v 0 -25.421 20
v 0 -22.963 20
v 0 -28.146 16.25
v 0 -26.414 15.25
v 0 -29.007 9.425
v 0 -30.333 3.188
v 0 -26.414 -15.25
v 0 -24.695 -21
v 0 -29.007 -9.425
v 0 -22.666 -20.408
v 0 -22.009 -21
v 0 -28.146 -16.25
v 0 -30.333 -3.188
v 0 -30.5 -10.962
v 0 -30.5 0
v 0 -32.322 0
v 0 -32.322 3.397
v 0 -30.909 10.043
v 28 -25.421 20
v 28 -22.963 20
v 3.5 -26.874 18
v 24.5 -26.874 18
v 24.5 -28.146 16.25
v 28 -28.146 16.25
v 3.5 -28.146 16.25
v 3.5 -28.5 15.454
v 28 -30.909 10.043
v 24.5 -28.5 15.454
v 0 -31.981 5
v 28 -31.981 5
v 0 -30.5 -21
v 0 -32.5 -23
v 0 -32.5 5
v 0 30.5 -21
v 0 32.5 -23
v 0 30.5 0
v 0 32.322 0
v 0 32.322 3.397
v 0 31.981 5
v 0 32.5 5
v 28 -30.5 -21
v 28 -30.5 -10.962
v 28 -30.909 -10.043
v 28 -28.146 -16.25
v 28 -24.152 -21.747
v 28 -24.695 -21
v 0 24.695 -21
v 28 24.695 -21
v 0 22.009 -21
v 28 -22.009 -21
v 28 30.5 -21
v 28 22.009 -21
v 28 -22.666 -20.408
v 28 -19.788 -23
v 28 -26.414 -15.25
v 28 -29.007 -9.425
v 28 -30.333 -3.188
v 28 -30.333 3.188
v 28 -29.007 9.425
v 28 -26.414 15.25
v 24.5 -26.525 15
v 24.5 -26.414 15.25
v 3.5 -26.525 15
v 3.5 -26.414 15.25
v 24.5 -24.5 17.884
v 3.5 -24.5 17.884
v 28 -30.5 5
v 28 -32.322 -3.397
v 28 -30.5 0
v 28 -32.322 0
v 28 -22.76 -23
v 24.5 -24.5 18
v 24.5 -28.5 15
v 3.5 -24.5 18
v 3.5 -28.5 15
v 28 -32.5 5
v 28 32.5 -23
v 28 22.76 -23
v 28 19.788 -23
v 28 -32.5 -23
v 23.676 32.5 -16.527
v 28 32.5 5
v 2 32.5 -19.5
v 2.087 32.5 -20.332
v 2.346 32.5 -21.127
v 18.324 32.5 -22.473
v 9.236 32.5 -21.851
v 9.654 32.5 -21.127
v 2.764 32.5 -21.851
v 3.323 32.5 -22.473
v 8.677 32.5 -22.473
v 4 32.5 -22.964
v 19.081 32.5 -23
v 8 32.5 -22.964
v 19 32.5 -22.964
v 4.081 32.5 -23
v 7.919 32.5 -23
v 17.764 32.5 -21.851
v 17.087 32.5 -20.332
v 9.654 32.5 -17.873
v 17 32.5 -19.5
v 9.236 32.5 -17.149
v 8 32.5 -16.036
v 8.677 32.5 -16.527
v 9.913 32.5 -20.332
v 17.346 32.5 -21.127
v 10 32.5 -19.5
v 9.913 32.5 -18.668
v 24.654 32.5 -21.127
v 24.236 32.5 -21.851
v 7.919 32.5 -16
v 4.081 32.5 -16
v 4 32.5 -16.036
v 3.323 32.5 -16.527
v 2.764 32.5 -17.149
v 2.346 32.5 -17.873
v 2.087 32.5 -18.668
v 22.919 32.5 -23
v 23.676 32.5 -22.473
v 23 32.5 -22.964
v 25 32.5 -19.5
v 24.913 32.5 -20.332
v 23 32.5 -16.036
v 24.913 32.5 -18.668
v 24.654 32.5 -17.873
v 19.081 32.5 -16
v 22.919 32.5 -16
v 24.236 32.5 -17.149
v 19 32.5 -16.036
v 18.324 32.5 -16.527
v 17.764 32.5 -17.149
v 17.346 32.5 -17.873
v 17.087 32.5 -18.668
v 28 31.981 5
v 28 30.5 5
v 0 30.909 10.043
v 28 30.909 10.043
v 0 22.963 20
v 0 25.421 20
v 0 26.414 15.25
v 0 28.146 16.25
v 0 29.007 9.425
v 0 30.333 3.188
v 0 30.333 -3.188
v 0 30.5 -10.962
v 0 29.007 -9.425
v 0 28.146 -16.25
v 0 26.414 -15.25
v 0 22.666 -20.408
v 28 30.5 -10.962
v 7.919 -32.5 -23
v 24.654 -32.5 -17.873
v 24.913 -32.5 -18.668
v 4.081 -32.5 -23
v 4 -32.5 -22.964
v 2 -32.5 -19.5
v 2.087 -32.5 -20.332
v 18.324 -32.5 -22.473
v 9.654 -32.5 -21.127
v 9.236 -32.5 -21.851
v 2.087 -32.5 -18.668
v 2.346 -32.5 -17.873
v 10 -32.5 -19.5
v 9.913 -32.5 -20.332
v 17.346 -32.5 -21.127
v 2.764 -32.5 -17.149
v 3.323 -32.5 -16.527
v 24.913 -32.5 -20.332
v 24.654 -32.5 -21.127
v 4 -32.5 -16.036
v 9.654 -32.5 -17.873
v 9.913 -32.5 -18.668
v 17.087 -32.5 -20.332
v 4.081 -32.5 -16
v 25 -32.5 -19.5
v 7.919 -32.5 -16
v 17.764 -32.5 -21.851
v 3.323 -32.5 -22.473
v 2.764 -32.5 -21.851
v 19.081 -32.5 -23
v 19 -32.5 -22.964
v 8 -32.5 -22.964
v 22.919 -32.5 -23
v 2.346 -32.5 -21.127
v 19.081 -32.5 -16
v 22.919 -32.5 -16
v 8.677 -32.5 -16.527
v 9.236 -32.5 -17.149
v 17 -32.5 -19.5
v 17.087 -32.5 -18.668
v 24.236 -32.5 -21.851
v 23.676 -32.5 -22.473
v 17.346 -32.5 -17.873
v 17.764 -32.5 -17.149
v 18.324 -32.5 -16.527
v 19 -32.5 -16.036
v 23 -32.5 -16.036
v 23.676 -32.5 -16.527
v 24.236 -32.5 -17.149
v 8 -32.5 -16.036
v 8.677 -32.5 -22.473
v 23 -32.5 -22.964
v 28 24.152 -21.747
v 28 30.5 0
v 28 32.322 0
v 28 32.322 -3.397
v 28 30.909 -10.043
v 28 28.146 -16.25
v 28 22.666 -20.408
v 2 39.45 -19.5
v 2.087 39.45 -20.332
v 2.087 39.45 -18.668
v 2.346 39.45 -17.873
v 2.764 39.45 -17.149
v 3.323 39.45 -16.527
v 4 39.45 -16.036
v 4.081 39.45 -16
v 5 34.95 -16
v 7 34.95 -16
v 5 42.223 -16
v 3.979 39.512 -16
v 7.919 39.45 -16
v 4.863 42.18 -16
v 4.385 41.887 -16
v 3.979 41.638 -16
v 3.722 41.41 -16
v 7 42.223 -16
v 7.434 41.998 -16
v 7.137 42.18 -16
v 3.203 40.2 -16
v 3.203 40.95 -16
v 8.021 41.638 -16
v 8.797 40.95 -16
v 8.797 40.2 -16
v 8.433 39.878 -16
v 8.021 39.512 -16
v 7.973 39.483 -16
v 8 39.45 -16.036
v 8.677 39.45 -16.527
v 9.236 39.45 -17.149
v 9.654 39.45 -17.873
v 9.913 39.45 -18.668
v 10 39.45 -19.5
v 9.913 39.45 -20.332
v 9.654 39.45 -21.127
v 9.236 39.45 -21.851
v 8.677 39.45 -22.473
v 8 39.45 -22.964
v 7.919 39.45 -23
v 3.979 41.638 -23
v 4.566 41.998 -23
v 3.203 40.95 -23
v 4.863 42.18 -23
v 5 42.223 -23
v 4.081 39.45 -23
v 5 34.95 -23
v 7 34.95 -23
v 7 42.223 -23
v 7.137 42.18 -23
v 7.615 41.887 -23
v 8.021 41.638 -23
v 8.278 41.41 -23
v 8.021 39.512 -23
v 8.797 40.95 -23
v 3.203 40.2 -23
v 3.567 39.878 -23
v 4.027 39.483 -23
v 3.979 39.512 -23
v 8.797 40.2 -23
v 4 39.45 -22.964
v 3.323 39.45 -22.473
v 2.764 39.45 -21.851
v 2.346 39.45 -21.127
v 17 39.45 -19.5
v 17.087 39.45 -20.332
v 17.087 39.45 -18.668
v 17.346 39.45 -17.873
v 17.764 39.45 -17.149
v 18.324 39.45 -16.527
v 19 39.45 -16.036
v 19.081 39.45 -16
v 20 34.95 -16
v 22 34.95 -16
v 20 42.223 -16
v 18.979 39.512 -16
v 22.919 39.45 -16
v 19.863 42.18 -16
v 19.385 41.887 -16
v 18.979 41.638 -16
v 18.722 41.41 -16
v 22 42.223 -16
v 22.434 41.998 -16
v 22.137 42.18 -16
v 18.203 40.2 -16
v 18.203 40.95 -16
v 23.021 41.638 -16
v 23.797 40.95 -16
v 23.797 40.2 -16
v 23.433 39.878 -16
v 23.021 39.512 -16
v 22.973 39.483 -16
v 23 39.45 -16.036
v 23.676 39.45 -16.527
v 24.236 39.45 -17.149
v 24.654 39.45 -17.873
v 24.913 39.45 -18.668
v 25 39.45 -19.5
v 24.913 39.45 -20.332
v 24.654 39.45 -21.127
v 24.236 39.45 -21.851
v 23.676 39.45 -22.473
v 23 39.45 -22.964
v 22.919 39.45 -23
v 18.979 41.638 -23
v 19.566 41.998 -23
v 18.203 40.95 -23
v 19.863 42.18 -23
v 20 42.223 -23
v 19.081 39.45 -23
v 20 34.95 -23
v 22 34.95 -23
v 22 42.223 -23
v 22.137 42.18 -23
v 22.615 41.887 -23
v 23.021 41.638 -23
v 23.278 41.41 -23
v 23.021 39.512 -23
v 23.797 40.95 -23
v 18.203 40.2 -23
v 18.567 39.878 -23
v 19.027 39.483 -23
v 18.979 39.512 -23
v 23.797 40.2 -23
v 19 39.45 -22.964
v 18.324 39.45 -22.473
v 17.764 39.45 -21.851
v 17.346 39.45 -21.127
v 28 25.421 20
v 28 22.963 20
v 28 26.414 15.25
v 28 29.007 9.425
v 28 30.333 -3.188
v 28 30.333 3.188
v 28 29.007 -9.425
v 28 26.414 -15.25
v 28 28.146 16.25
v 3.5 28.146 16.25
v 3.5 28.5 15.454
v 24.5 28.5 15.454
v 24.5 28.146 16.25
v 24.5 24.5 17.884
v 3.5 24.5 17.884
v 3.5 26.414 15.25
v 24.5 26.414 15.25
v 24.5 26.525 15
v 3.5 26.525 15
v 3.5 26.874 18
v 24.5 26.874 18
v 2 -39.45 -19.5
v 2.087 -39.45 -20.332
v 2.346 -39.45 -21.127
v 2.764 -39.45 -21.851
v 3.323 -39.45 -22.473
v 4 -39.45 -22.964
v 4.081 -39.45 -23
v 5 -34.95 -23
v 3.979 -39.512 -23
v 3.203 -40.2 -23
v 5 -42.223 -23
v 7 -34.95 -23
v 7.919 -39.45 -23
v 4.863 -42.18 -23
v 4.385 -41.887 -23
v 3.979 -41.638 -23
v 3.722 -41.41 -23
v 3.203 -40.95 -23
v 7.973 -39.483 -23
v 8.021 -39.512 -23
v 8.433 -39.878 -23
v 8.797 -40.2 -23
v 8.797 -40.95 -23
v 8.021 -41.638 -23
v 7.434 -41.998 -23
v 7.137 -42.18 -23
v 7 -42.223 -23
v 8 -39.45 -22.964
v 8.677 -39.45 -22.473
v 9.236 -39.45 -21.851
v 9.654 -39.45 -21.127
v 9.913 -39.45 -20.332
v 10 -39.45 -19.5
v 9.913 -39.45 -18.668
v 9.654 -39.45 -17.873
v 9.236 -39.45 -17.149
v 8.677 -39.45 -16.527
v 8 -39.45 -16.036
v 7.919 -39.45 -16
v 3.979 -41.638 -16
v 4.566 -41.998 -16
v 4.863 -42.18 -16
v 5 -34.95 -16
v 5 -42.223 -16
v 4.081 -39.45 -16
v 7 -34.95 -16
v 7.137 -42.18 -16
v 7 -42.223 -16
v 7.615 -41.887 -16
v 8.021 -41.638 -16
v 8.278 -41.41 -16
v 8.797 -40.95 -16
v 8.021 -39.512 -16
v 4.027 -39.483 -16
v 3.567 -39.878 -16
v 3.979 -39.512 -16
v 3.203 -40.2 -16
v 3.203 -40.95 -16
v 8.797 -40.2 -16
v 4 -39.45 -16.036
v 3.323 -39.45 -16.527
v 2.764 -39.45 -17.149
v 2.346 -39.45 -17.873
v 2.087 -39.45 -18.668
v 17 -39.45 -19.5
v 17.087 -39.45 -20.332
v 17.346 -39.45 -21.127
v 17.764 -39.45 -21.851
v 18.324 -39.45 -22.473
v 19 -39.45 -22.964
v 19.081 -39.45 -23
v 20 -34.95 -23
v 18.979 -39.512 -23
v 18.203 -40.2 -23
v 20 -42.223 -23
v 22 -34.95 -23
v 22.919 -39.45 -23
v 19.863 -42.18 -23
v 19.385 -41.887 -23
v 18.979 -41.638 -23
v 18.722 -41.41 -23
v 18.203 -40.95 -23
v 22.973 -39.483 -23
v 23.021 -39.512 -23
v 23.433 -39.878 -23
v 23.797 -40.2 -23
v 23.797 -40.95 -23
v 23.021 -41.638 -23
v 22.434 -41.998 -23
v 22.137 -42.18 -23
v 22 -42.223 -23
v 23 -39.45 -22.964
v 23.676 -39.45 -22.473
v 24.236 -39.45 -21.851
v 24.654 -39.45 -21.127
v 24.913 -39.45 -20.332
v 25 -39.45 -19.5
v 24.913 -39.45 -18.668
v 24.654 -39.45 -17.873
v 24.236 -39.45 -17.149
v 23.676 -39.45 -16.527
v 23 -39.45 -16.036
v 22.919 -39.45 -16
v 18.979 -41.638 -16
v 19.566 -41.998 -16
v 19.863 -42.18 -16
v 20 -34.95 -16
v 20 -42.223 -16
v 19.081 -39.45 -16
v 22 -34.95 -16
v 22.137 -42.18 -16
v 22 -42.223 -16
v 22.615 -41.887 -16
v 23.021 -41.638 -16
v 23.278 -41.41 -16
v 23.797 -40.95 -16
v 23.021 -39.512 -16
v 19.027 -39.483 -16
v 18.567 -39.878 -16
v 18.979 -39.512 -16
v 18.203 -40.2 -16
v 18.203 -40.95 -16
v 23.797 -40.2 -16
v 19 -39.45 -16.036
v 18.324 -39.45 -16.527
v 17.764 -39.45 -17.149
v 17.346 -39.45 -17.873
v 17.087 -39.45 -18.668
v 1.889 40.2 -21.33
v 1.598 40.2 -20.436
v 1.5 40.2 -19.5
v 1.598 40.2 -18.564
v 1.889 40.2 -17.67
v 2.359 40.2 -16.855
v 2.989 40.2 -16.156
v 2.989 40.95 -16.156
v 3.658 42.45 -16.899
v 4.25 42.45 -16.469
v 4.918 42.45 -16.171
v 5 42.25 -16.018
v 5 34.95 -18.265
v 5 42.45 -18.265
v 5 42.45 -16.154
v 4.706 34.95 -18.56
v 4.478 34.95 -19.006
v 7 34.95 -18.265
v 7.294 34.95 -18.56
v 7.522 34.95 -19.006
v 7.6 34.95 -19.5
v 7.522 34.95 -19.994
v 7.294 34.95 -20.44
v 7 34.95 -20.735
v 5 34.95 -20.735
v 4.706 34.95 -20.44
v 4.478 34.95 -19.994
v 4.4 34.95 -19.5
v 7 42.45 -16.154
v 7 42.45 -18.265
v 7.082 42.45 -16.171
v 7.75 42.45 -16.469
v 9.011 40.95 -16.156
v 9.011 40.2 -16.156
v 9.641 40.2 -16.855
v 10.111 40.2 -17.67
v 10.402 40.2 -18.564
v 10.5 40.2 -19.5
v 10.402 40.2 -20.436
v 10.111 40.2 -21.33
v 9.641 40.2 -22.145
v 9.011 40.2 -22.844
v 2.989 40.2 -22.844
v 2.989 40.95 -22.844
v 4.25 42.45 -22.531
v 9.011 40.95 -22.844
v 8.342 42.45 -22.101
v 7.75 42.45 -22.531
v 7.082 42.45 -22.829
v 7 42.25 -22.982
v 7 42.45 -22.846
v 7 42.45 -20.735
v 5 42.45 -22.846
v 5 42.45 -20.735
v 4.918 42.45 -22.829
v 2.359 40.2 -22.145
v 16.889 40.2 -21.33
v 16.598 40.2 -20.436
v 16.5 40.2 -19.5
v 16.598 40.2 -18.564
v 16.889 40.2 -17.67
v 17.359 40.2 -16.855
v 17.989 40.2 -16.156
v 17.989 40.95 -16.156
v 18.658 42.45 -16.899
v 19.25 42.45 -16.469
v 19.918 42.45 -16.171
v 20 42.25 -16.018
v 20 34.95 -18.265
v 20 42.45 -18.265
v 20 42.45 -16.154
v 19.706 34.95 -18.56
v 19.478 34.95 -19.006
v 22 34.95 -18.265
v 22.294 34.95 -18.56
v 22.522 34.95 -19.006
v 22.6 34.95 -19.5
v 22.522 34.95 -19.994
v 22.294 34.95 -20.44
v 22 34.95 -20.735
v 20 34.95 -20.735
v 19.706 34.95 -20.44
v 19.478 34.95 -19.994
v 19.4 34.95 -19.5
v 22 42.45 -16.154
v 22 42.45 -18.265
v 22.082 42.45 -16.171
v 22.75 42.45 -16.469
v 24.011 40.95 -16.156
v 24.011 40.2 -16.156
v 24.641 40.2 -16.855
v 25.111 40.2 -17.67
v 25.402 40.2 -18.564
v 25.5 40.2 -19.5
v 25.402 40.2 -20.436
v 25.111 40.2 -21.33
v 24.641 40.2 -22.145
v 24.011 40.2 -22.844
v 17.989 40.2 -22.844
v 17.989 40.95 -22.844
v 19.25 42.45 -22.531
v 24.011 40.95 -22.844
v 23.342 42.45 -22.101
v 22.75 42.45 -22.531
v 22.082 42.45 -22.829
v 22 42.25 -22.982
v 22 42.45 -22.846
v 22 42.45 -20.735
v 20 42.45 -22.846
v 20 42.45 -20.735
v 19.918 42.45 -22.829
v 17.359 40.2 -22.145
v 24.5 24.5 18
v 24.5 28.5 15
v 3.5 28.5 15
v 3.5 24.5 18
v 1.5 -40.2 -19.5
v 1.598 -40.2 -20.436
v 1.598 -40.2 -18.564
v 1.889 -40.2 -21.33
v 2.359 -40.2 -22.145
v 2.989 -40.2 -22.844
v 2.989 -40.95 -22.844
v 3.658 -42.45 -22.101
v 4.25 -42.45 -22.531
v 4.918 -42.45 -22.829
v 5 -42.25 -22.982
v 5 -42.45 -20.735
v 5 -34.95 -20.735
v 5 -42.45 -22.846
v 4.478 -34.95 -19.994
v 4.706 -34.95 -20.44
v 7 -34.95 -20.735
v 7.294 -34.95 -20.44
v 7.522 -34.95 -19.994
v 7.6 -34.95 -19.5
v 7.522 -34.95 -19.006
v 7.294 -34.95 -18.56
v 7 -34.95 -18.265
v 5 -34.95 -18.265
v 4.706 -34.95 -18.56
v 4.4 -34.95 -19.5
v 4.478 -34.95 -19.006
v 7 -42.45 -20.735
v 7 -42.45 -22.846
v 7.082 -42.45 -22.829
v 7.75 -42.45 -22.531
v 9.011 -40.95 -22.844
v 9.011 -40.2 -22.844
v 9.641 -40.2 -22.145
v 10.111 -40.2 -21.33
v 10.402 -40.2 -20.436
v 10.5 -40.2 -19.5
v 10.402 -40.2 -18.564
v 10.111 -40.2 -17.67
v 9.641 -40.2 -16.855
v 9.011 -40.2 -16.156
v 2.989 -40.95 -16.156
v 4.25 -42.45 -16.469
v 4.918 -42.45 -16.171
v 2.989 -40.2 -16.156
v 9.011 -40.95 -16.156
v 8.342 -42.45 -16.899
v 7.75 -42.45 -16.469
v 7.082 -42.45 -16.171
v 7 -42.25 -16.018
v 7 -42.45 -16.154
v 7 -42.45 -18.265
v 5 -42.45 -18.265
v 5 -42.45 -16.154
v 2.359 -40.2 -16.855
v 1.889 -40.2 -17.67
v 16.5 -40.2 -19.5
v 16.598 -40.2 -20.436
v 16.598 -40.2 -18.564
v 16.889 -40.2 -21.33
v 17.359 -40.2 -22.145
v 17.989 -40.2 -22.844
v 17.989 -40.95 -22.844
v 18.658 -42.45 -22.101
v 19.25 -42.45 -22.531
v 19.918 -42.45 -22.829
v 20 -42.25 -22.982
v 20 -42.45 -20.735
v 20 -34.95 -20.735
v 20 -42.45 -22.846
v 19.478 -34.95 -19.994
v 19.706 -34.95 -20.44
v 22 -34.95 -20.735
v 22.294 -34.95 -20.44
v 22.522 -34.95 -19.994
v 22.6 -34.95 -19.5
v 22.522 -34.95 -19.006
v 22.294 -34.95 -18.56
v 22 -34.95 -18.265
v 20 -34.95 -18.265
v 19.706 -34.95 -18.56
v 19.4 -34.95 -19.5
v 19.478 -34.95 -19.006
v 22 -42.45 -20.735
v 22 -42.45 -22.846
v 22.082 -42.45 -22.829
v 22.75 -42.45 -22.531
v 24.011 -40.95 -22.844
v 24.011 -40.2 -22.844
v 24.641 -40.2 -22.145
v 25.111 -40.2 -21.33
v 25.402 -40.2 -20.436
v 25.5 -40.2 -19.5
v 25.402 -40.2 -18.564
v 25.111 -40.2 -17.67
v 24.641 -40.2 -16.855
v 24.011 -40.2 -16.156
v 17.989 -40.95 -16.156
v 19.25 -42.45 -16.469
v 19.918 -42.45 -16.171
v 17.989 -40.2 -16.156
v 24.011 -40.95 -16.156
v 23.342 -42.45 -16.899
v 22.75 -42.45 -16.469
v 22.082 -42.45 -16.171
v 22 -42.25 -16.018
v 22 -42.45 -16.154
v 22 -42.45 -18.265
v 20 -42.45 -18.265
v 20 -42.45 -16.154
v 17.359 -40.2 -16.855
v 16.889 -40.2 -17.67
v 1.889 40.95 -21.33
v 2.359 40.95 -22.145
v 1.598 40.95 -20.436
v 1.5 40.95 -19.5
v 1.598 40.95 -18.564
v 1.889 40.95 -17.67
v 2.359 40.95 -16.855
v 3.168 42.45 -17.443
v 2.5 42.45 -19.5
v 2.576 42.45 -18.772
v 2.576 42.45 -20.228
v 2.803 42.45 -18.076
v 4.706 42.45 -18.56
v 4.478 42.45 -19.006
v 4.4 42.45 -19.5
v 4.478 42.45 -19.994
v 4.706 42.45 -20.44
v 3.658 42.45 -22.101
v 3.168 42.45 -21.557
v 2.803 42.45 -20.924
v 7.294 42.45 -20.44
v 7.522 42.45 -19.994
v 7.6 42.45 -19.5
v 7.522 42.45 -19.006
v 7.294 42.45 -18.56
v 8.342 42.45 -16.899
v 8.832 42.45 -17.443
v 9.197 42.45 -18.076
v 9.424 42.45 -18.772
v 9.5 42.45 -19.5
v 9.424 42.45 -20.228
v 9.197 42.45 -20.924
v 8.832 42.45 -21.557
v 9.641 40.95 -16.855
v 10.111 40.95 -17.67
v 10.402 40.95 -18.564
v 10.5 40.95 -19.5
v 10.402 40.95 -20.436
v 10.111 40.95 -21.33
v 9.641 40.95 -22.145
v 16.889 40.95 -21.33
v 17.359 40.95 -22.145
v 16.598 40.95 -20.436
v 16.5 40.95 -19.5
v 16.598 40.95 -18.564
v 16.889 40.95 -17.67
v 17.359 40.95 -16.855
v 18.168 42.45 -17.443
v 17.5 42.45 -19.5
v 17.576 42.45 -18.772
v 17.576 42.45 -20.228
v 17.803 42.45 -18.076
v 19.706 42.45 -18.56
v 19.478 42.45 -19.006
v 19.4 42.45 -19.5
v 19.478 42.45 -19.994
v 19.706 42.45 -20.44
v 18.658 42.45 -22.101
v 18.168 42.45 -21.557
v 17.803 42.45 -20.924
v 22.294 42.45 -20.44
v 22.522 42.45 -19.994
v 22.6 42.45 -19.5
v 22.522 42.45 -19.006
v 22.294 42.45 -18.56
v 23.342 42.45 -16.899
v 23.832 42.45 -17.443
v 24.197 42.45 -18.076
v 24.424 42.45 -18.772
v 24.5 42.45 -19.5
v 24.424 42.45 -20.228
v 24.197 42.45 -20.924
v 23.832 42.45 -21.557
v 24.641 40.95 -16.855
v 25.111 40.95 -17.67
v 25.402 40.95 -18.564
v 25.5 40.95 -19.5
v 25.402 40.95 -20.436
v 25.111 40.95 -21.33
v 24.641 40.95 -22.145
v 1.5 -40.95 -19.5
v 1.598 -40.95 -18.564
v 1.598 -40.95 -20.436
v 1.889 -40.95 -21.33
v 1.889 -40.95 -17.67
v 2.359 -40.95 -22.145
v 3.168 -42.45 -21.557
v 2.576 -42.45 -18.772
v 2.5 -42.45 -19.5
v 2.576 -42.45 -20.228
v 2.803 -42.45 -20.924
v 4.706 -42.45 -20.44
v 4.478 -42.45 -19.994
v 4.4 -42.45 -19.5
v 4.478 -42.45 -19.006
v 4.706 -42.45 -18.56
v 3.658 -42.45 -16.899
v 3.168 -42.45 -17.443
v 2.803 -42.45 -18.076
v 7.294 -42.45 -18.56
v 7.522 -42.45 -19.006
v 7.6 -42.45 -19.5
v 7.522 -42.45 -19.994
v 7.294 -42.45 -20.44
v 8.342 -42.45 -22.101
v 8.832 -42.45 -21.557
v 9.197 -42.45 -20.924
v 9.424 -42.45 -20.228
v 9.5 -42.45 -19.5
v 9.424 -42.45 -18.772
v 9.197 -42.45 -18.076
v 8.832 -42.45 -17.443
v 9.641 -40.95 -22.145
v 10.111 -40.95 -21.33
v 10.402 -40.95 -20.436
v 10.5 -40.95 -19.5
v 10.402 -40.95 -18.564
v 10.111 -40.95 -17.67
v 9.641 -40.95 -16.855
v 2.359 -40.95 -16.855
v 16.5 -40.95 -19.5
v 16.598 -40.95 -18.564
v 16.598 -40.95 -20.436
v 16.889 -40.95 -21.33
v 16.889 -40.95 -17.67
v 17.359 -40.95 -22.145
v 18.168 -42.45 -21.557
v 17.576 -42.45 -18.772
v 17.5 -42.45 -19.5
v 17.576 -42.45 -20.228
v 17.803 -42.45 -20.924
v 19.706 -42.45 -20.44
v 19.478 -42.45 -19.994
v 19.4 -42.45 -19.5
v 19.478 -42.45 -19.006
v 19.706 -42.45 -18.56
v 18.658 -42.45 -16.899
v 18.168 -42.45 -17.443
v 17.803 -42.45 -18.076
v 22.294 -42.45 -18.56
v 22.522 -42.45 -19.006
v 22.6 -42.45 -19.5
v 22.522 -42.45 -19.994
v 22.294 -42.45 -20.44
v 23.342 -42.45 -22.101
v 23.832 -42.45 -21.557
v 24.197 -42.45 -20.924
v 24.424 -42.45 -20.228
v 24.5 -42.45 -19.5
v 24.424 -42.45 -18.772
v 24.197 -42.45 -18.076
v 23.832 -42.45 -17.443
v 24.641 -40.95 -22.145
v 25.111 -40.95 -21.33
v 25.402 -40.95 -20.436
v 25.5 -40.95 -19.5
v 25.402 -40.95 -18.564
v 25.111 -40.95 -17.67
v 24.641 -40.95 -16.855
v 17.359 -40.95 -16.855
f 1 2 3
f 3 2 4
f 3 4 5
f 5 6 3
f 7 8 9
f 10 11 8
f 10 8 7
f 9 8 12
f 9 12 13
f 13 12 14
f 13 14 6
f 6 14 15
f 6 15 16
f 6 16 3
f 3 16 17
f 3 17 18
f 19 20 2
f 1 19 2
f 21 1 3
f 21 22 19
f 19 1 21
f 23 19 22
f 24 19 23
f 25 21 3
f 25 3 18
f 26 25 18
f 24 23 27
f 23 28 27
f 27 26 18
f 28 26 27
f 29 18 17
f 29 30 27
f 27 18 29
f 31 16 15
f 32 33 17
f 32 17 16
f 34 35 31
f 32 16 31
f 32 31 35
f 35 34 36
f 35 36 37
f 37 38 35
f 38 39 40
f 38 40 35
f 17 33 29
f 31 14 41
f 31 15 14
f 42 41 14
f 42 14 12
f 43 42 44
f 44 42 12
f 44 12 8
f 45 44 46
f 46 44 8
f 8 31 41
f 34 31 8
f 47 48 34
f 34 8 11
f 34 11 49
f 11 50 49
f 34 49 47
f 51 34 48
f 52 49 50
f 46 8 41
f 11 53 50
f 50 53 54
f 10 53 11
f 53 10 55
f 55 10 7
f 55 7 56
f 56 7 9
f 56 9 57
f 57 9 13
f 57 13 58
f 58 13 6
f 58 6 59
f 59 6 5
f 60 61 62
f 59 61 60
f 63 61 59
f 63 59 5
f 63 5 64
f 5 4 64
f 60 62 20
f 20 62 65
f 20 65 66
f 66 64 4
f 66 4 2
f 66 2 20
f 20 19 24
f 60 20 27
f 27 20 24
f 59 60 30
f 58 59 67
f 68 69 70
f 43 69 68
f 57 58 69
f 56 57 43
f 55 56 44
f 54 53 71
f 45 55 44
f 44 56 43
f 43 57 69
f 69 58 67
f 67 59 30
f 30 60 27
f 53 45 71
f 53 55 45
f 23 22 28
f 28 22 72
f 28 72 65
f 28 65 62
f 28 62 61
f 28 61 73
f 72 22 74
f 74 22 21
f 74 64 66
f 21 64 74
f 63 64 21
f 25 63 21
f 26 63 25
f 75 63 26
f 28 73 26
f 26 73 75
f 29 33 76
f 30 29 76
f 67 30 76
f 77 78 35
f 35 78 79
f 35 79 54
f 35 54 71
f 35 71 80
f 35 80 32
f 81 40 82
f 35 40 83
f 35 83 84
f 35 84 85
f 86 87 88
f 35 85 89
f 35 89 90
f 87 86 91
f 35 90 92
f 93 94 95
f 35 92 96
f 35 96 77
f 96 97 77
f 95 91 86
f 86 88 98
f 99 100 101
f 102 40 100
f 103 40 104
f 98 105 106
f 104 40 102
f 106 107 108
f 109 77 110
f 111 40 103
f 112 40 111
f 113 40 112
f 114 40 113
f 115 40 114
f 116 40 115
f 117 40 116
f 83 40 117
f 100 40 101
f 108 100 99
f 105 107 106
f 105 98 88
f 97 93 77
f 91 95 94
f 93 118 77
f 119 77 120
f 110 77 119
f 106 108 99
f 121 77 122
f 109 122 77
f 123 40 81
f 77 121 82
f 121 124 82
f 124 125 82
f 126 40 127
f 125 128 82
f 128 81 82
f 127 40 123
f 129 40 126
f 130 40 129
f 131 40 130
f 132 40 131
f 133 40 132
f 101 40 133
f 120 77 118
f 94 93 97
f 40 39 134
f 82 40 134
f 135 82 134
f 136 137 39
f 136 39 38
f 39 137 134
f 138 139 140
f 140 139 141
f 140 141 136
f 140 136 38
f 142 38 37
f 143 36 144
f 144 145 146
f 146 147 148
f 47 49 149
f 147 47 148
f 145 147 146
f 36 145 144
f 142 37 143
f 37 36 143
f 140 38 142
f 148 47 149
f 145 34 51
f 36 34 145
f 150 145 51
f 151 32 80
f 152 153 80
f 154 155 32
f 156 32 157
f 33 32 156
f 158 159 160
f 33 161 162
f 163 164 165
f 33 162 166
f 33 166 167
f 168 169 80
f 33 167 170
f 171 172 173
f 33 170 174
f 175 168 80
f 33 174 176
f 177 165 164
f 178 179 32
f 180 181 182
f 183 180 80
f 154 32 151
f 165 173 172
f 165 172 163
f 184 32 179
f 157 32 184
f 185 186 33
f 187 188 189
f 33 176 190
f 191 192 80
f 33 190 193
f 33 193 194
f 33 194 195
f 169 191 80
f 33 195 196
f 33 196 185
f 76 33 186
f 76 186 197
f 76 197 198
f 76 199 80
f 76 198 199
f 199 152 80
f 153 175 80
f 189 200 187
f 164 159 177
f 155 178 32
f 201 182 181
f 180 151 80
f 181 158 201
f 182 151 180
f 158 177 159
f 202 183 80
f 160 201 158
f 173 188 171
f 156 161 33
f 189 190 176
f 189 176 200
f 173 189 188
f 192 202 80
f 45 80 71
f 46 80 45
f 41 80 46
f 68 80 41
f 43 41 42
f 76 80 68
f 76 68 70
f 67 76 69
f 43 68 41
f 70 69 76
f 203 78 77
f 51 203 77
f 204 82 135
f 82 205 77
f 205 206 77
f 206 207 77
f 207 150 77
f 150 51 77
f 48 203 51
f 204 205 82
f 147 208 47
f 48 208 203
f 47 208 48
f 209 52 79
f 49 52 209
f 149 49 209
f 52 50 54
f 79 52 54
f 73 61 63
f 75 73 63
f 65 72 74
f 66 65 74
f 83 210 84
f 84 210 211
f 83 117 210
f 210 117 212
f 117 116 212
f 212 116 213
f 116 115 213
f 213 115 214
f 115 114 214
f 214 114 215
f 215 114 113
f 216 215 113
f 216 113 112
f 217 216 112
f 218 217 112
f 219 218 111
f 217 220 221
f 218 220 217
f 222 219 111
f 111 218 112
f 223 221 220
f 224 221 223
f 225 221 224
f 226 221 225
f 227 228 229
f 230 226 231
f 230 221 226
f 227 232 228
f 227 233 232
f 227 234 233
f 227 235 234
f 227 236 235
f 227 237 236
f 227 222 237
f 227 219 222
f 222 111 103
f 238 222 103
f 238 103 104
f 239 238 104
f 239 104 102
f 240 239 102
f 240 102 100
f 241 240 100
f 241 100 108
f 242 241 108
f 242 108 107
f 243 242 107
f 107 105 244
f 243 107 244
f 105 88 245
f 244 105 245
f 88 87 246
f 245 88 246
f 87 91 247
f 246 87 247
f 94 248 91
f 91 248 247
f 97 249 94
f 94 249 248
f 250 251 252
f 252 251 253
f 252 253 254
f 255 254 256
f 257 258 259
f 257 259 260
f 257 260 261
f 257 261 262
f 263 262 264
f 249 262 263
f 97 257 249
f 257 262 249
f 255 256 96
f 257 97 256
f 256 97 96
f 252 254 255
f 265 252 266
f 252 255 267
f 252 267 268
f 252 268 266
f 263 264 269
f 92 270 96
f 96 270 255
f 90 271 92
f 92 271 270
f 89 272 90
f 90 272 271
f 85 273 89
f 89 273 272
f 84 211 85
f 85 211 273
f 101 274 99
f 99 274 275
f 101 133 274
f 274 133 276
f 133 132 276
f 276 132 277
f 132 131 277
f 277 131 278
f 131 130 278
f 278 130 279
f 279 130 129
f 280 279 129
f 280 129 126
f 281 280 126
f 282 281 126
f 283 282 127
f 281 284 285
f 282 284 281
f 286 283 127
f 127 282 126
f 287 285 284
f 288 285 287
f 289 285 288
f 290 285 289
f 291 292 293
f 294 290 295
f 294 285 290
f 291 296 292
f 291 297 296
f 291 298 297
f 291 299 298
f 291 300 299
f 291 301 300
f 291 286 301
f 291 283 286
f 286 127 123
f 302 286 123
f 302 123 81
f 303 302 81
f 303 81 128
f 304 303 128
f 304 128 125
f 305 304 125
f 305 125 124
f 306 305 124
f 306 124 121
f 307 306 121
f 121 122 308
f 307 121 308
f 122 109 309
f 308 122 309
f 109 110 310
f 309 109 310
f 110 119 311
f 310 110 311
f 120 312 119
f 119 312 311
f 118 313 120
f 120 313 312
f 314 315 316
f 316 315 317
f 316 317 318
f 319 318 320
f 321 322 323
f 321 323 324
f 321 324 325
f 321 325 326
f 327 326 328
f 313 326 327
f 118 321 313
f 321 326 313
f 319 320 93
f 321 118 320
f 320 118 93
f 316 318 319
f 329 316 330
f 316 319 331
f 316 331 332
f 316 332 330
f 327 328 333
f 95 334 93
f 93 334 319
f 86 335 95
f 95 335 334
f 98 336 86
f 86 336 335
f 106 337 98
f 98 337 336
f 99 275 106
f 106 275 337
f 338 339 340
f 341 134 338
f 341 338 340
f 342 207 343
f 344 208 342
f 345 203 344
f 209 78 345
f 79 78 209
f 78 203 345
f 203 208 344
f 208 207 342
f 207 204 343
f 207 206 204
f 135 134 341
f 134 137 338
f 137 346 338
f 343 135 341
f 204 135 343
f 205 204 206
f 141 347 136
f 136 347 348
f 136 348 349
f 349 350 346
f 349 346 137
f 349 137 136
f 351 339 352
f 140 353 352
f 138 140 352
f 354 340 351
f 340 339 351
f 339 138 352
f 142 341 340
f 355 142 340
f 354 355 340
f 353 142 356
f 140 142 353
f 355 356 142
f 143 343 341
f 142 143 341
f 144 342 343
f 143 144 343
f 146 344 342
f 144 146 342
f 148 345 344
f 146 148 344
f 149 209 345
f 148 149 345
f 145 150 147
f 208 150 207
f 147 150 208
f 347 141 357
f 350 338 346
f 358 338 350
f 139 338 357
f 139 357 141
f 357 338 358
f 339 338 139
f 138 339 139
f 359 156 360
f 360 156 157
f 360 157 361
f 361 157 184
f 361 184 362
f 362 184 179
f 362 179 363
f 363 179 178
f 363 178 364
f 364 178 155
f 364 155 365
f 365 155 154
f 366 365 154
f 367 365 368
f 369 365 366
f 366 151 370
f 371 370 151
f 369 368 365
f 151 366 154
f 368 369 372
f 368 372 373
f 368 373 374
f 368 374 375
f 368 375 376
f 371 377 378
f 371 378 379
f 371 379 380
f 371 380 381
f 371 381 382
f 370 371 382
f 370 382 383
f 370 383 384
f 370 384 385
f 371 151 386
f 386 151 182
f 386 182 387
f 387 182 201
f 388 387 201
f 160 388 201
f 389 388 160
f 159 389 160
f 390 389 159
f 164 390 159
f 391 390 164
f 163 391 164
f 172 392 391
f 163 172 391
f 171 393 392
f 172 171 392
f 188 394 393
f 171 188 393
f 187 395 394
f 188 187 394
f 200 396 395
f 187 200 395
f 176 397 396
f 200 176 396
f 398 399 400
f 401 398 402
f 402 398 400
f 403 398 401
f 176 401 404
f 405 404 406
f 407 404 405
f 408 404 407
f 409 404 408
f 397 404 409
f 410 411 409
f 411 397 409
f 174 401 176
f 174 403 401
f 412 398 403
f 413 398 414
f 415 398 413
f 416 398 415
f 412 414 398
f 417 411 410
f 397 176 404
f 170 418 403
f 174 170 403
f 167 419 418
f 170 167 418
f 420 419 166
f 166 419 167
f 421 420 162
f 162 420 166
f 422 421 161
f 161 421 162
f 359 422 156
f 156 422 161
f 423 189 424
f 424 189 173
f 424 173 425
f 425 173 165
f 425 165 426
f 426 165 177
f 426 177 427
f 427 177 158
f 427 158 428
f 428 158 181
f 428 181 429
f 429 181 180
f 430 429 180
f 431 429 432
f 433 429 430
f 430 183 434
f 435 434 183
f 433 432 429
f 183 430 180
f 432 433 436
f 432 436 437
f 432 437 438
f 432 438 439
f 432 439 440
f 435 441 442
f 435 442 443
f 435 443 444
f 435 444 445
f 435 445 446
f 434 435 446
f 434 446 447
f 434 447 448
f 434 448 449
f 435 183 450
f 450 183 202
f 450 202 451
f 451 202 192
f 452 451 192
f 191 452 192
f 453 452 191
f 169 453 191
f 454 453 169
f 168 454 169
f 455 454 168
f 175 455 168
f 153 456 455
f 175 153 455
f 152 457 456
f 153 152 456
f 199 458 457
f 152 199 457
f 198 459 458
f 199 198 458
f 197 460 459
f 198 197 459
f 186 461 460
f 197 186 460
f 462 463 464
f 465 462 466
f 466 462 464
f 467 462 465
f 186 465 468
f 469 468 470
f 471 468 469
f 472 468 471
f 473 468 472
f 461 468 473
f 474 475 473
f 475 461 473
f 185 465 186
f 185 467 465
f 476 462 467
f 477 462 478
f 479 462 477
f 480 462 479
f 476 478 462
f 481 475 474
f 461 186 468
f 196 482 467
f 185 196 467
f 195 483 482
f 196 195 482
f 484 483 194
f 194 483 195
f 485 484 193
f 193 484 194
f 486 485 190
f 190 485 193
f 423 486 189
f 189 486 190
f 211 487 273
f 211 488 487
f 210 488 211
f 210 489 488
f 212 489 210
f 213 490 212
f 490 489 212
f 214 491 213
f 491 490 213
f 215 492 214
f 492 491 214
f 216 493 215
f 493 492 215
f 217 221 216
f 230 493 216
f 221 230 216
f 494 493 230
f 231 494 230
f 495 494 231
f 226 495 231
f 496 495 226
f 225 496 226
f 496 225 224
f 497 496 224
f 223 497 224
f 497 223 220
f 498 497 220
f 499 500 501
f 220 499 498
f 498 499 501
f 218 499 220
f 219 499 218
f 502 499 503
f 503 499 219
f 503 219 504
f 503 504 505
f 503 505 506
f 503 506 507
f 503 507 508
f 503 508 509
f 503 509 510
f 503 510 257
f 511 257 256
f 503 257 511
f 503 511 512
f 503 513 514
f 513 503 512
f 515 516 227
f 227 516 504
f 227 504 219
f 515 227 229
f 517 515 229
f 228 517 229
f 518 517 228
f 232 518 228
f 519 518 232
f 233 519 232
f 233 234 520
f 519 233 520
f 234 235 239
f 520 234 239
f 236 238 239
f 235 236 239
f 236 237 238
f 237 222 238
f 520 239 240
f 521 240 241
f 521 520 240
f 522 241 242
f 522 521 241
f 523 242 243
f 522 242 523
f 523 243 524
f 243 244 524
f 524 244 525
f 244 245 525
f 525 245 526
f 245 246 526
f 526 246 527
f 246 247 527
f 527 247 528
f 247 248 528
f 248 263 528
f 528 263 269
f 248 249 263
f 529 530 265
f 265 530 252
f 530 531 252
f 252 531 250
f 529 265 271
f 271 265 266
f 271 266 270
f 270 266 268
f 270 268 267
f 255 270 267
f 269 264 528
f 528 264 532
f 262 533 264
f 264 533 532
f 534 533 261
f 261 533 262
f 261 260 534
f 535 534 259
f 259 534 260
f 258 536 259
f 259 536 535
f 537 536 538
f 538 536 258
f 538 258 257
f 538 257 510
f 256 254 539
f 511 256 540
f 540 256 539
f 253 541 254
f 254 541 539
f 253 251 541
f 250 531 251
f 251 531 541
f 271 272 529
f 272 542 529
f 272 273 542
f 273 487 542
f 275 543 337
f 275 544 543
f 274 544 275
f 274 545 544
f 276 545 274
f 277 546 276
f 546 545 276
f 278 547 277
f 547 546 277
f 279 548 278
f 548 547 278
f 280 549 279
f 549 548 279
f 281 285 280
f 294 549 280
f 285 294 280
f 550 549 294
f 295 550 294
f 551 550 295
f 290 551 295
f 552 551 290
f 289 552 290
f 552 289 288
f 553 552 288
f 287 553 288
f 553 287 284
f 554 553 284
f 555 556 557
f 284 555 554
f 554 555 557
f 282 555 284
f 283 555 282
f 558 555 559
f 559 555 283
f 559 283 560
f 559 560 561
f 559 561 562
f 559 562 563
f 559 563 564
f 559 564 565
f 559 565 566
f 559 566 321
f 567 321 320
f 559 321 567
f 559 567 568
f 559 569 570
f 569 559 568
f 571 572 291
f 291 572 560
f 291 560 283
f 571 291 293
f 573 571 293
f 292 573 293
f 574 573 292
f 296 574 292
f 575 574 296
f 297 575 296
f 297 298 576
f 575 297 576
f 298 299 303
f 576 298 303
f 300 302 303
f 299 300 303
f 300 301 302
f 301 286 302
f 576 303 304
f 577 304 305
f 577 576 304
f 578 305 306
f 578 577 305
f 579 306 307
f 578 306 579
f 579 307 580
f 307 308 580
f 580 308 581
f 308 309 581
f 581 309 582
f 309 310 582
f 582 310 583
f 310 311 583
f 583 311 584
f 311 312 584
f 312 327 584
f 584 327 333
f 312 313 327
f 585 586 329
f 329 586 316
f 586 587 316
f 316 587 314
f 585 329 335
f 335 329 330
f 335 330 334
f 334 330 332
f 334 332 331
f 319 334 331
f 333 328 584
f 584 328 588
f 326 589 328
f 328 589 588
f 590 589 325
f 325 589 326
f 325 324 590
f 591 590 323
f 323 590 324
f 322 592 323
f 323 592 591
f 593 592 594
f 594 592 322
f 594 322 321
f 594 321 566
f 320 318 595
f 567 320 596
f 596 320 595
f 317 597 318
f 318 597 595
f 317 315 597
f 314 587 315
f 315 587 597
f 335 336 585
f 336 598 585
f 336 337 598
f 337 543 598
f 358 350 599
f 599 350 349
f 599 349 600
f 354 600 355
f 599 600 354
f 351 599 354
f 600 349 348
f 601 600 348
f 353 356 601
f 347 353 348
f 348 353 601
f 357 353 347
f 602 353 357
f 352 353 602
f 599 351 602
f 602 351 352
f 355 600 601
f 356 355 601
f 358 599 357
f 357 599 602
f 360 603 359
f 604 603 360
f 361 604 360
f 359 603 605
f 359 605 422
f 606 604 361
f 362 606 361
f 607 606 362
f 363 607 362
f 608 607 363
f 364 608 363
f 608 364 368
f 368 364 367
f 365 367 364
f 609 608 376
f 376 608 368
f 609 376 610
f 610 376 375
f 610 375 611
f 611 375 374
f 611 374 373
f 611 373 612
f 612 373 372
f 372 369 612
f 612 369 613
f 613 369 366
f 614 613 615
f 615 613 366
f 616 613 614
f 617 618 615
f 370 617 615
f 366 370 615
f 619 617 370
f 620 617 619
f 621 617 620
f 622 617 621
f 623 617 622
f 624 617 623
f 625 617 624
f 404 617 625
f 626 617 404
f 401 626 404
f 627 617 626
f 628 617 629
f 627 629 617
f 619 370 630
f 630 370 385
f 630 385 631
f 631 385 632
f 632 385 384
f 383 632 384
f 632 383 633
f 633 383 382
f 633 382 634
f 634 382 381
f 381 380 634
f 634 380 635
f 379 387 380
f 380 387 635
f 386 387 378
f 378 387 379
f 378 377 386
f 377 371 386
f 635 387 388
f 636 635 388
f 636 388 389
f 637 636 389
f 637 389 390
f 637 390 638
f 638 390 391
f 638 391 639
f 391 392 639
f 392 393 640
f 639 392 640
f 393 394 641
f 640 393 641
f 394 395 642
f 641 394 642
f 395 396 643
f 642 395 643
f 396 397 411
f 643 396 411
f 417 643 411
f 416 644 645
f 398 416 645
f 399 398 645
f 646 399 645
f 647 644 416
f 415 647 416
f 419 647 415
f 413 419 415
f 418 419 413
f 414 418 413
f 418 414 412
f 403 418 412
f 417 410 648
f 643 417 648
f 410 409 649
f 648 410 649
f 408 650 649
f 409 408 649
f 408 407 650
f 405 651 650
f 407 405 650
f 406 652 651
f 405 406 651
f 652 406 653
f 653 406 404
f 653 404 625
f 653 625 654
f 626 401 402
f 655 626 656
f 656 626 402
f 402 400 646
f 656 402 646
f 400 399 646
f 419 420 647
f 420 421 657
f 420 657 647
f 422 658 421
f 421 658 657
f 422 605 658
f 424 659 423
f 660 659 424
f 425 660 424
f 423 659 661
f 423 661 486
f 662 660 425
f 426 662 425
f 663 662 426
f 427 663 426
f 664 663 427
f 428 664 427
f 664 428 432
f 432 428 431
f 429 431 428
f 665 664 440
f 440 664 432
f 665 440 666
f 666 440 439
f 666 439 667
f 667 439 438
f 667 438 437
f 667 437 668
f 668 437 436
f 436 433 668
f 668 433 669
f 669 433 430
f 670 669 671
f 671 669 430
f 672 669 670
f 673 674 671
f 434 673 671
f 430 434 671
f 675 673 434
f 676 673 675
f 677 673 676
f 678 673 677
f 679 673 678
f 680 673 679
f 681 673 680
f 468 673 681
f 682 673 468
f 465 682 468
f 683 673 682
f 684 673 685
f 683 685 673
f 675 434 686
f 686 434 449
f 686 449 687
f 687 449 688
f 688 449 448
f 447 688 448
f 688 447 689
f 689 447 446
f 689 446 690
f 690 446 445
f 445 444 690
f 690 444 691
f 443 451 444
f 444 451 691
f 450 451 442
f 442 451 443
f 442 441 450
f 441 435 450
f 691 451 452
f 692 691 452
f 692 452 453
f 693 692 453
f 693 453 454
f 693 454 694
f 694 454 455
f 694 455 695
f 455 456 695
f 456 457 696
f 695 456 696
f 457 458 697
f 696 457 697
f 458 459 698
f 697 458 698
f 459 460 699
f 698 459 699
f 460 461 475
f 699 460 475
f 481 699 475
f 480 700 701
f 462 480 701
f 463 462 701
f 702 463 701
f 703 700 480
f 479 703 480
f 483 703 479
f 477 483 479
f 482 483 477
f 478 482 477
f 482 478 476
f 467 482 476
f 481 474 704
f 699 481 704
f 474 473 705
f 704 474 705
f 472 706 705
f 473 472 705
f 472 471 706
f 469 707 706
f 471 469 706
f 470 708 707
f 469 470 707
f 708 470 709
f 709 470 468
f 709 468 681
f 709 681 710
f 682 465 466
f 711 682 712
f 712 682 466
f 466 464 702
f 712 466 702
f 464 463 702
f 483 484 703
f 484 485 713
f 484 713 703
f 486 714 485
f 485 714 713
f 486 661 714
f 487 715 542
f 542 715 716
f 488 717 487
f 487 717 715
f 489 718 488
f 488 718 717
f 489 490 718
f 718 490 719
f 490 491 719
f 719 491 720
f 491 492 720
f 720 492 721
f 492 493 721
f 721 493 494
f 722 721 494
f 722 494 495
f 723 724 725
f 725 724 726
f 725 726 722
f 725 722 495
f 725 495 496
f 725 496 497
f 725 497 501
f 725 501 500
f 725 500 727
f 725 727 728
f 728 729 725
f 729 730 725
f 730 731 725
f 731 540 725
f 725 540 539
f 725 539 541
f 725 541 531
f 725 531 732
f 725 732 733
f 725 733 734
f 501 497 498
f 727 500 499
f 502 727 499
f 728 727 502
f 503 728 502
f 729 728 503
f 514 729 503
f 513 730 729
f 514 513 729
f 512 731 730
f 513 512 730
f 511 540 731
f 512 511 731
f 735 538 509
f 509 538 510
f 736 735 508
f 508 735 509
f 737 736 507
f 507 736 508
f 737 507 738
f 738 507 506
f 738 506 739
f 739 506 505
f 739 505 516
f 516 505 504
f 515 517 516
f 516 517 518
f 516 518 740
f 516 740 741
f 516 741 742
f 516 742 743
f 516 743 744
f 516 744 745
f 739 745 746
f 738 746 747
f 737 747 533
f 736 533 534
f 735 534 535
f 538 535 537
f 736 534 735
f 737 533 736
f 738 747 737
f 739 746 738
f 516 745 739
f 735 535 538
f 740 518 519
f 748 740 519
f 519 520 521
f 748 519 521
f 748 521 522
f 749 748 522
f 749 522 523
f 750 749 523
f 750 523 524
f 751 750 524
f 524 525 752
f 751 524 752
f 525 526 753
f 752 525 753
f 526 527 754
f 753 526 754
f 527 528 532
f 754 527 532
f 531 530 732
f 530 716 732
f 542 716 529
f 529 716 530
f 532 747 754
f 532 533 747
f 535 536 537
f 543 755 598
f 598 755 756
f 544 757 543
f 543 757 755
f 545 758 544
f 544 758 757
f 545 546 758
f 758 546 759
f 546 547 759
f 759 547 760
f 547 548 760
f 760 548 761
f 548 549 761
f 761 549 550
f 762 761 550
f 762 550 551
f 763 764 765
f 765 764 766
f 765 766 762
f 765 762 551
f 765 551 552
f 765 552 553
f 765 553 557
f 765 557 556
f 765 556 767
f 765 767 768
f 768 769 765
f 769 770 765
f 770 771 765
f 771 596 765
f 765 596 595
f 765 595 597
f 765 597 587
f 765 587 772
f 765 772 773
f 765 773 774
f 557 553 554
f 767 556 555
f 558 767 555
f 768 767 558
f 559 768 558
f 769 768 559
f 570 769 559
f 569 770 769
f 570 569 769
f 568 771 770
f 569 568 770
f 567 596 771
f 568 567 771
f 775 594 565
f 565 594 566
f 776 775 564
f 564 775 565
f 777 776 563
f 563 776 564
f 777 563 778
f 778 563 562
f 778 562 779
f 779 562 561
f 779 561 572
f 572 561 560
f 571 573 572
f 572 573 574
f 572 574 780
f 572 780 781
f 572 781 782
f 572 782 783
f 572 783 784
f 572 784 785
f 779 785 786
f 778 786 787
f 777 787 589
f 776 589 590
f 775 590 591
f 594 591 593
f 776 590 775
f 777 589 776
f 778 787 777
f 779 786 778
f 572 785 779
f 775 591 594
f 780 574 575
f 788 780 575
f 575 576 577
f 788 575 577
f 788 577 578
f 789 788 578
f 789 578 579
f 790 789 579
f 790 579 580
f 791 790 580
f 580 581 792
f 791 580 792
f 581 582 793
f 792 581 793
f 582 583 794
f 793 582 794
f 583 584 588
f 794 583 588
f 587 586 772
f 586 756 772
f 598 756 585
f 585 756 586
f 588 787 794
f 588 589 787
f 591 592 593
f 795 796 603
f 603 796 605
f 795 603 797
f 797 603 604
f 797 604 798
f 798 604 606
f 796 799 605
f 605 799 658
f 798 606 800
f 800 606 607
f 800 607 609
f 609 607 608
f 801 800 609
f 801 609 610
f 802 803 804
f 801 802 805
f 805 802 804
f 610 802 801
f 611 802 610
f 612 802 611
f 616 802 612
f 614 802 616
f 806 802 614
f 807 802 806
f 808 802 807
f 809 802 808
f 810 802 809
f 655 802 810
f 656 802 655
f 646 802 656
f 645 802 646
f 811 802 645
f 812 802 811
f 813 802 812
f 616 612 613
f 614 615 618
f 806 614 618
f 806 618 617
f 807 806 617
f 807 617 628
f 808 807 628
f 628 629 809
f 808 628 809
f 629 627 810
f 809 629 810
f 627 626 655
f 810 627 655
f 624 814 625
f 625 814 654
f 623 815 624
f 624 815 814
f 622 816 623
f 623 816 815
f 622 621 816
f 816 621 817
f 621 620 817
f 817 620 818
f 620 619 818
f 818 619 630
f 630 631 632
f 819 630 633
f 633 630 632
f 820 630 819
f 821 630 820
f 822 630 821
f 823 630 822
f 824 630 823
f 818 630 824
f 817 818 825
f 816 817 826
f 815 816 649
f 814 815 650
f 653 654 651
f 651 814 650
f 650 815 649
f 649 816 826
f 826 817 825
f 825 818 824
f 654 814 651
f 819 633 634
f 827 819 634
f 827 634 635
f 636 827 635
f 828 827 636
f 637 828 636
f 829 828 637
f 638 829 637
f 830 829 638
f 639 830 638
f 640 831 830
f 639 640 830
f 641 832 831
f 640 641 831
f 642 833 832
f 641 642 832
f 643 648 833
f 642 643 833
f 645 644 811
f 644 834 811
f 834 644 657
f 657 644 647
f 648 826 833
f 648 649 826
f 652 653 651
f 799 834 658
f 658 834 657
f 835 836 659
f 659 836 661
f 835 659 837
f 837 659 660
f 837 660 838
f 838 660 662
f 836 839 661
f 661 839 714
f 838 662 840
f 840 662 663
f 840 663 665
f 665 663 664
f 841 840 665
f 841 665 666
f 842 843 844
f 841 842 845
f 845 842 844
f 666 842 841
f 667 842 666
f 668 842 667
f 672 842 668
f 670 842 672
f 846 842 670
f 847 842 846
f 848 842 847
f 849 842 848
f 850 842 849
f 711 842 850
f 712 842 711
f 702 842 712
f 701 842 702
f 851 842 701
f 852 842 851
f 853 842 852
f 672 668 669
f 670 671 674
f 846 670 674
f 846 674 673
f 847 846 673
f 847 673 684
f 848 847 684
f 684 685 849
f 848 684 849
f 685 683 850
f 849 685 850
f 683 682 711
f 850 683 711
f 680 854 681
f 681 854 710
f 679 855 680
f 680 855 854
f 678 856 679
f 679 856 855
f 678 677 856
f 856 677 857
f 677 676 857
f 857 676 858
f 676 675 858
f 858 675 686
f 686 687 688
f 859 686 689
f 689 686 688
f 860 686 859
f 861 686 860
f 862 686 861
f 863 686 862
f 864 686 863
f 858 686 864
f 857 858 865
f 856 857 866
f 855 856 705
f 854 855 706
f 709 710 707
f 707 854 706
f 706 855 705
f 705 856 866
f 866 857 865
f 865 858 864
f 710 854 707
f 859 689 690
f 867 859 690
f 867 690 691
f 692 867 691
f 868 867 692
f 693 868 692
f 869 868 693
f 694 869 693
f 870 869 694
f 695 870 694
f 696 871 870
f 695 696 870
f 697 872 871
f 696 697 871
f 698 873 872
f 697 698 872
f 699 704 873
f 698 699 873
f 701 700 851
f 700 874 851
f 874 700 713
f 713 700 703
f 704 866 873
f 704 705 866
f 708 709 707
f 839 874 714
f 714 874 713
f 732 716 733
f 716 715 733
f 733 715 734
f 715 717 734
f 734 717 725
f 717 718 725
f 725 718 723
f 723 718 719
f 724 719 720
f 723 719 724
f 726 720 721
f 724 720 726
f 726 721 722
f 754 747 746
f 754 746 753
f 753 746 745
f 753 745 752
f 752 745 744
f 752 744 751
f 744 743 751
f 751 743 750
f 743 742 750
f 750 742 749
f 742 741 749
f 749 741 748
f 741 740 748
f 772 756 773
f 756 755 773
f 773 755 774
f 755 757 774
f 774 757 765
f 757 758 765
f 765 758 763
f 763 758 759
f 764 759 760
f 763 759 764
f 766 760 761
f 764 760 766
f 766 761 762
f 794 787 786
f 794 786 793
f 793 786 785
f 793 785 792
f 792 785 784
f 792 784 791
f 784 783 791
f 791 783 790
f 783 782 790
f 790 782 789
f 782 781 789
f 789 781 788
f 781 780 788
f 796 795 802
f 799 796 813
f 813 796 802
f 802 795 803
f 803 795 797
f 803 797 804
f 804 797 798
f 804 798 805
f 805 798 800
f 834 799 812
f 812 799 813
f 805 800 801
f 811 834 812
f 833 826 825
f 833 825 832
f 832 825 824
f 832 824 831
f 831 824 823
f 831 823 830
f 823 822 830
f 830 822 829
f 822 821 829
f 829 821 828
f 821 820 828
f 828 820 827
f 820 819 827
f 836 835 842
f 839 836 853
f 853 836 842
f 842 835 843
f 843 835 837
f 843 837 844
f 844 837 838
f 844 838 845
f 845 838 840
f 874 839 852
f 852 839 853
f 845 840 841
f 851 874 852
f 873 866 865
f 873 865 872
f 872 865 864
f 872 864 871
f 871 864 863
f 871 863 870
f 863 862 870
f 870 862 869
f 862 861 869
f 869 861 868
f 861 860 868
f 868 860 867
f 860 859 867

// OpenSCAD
// file: pins.scad
// Pin Connectors V2
// Tony Buser <tbuser@gmail.com>

// pinhole(h=5);

// test();
// pintack(h=10);
// pinpeg(h=20);

module test() {
  tolerance = 0.3;
  
  translate([-12, 12, 0]) pinpeg(h=20);
  translate([12, 12, 0]) pintack(h=10);
  
  difference() {
    union() {
      translate([0, -12, 2.5]) cube(size = [59, 20, 5], center = true);
      translate([24, -12, 7.5]) cube(size = [12, 20, 15], center = true);
    }
    translate([-24, -12, 0]) pinhole(h=5, t=tolerance);
    translate([-12, -12, 0]) pinhole(h=5, t=tolerance, tight=false);
    translate([0, -12, 0]) pinhole(h=10, t=tolerance);
    translate([12, -12, 0]) pinhole(h=10, t=tolerance, tight=false);
    translate([24, -12, 15]) rotate([0, 180, 0]) pinhole(h=10, t=tolerance);
  }
}

module pinhole(h=10, r=4, lh=3, lt=1, t=0.3, tight=true) {
  union() {
    pin_solid(h, r+(t/2), lh, lt);
    cylinder(h=h+0.2, r=r);
    // widen the cylinder slightly
    // cylinder(h=h+0.2, r=r+(t-0.2/2));
    if (tight == false) {
      cylinder(h=h+0.2, r=r+(t/2)+0.25);
    }
    // widen the entrance hole to make insertion easier
    translate([0, 0, -0.1]) cylinder(h=lh/3, r2=r, r1=r+(t/2)+(lt/2));
  }
}

module pin(h=10, r=4, lh=3, lt=1, side=false) {
  if (side) {
    pin_horizontal(h, r, lh, lt);
  } else {
    pin_vertical(h, r, lh, lt);
  }
}

module pintack(h=10, r=4, lh=3, lt=1, bh=3, br=8.75) {
  union() {
    cylinder(h=bh, r=br);
    translate([0, 0, bh]) pin(h, r, lh, lt);
  }
}

module pinpeg(h=20, r=4, lh=3, lt=1) {
  union() {
    translate([0, -h/4+0.05, 0]) pin(h/2+0.1, r, lh, lt, side=true);
    translate([0, h/4-0.05, 0]) rotate([0, 0, 180]) pin(h/2+0.1, r, lh, lt, side=true);
  }
}

module pin_vertical(h=10, r=4, lh=3, lt=1) {
  difference() {
    pin_solid(h, r, lh, lt);
    
    // center cut
    translate([-r*0.5/2, -(r*2+lt*2)/2, h/4]) cube([r*0.5, r*2+lt*2, h]);
    translate([0, 0, h/4]) cylinder(h=h+lh, r=r/2.5, $fn=20);
    // center curve
    // translate([0, 0, h/4]) rotate([90, 0, 0]) cylinder(h=r*2, r=r*0.5/2, center=true, $fn=20);
  
    // side cuts
    translate([-r*2, -lt-r*1.125, -1]) cube([r*4, lt*2, h+2]);
    translate([-r*2, -lt+r*1.125, -1]) cube([r*4, lt*2, h+2]);
  }
}

// call pin with side=true instead of this
module pin_horizontal(h=10, r=4, lh=3, lt=1) {
  translate([0, h/2, r*1.125-lt]) rotate([90, 0, 0]) pin_vertical(h, r, lh, lt);
}

// this is mainly to make the pinhole module easier
module pin_solid(h=10, r=4, lh=3, lt=1) {
  union() {
    cylinder(h=h-lh, r=r, $fn=30);
    translate([0, 0, h-lh]) cylinder(h=lh*0.25, r1=r, r2=r+(lt/2), $fn=30);
    translate([0, 0, h-lh+lh*0.25]) cylinder(h=lh*0.25, r=r+(lt/2), $fn=30);    
    translate([0, 0, h-lh+lh*0.50]) cylinder(h=lh*0.50, r1=r+(lt/2), r2=r-(lt/2), $fn=30);    
  }
}

module two_pinholes() {
 pinhole();
 translate(v=[15,0,0]) pinhole();
}
// main file
include <pins.scad>



module wriststrap() {
 // part that goes over your wrist

 strapwidth = 28;
 wristwidth = 65;

 difference () {
  rotate(a=[0, 90, 0]) cylinder(r=wristwidth/2,h=strapwidth);
  rotate(a=[0, 90, 0]) cylinder(r=(wristwidth/2)-2,h=strapwidth);
  translate(v=[-2,-wristwidth/2,20]) cube(size=[strapwidth+4,wristwidth,strapwidth]);
  translate(v=[-2,-(wristwidth-15)/2,-43]) cube(size=[strapwidth+4,wristwidth-15,20]);
  translate(v=[3.5,(-wristwidth/2)+4,15]) cube(size=[strapwidth-7,4,3]); 
  translate(v=[3.5,(wristwidth/2)-8,15]) cube(size=[strapwidth-7,4,3]); 
 }

 translate(v=[0,-(wristwidth)/2,-23]) cube(size=[strapwidth,wristwidth,2]);
 translate(v=[0,-(wristwidth)/2,-23]) cube(size=[strapwidth,2,strapwidth]);
 translate(v=[0,(wristwidth/2)-2,-23]) cube(size=[strapwidth,2,strapwidth]);


 translate(v=[6,-(wristwidth/2)-4.95,-23]) #pin(side=true);
 translate(v=[21,-(wristwidth/2)-4.95,-23]) pin(side=true);


 translate(v=[6,(wristwidth/2)+4.95,-23]) rotate(a=[0,0,180]) pin(side=true);
 translate(v=[21,(wristwidth/2)+4.95,-23]) rotate(a=[0,0,180]) pin(side=true);

}

wriststrap();
